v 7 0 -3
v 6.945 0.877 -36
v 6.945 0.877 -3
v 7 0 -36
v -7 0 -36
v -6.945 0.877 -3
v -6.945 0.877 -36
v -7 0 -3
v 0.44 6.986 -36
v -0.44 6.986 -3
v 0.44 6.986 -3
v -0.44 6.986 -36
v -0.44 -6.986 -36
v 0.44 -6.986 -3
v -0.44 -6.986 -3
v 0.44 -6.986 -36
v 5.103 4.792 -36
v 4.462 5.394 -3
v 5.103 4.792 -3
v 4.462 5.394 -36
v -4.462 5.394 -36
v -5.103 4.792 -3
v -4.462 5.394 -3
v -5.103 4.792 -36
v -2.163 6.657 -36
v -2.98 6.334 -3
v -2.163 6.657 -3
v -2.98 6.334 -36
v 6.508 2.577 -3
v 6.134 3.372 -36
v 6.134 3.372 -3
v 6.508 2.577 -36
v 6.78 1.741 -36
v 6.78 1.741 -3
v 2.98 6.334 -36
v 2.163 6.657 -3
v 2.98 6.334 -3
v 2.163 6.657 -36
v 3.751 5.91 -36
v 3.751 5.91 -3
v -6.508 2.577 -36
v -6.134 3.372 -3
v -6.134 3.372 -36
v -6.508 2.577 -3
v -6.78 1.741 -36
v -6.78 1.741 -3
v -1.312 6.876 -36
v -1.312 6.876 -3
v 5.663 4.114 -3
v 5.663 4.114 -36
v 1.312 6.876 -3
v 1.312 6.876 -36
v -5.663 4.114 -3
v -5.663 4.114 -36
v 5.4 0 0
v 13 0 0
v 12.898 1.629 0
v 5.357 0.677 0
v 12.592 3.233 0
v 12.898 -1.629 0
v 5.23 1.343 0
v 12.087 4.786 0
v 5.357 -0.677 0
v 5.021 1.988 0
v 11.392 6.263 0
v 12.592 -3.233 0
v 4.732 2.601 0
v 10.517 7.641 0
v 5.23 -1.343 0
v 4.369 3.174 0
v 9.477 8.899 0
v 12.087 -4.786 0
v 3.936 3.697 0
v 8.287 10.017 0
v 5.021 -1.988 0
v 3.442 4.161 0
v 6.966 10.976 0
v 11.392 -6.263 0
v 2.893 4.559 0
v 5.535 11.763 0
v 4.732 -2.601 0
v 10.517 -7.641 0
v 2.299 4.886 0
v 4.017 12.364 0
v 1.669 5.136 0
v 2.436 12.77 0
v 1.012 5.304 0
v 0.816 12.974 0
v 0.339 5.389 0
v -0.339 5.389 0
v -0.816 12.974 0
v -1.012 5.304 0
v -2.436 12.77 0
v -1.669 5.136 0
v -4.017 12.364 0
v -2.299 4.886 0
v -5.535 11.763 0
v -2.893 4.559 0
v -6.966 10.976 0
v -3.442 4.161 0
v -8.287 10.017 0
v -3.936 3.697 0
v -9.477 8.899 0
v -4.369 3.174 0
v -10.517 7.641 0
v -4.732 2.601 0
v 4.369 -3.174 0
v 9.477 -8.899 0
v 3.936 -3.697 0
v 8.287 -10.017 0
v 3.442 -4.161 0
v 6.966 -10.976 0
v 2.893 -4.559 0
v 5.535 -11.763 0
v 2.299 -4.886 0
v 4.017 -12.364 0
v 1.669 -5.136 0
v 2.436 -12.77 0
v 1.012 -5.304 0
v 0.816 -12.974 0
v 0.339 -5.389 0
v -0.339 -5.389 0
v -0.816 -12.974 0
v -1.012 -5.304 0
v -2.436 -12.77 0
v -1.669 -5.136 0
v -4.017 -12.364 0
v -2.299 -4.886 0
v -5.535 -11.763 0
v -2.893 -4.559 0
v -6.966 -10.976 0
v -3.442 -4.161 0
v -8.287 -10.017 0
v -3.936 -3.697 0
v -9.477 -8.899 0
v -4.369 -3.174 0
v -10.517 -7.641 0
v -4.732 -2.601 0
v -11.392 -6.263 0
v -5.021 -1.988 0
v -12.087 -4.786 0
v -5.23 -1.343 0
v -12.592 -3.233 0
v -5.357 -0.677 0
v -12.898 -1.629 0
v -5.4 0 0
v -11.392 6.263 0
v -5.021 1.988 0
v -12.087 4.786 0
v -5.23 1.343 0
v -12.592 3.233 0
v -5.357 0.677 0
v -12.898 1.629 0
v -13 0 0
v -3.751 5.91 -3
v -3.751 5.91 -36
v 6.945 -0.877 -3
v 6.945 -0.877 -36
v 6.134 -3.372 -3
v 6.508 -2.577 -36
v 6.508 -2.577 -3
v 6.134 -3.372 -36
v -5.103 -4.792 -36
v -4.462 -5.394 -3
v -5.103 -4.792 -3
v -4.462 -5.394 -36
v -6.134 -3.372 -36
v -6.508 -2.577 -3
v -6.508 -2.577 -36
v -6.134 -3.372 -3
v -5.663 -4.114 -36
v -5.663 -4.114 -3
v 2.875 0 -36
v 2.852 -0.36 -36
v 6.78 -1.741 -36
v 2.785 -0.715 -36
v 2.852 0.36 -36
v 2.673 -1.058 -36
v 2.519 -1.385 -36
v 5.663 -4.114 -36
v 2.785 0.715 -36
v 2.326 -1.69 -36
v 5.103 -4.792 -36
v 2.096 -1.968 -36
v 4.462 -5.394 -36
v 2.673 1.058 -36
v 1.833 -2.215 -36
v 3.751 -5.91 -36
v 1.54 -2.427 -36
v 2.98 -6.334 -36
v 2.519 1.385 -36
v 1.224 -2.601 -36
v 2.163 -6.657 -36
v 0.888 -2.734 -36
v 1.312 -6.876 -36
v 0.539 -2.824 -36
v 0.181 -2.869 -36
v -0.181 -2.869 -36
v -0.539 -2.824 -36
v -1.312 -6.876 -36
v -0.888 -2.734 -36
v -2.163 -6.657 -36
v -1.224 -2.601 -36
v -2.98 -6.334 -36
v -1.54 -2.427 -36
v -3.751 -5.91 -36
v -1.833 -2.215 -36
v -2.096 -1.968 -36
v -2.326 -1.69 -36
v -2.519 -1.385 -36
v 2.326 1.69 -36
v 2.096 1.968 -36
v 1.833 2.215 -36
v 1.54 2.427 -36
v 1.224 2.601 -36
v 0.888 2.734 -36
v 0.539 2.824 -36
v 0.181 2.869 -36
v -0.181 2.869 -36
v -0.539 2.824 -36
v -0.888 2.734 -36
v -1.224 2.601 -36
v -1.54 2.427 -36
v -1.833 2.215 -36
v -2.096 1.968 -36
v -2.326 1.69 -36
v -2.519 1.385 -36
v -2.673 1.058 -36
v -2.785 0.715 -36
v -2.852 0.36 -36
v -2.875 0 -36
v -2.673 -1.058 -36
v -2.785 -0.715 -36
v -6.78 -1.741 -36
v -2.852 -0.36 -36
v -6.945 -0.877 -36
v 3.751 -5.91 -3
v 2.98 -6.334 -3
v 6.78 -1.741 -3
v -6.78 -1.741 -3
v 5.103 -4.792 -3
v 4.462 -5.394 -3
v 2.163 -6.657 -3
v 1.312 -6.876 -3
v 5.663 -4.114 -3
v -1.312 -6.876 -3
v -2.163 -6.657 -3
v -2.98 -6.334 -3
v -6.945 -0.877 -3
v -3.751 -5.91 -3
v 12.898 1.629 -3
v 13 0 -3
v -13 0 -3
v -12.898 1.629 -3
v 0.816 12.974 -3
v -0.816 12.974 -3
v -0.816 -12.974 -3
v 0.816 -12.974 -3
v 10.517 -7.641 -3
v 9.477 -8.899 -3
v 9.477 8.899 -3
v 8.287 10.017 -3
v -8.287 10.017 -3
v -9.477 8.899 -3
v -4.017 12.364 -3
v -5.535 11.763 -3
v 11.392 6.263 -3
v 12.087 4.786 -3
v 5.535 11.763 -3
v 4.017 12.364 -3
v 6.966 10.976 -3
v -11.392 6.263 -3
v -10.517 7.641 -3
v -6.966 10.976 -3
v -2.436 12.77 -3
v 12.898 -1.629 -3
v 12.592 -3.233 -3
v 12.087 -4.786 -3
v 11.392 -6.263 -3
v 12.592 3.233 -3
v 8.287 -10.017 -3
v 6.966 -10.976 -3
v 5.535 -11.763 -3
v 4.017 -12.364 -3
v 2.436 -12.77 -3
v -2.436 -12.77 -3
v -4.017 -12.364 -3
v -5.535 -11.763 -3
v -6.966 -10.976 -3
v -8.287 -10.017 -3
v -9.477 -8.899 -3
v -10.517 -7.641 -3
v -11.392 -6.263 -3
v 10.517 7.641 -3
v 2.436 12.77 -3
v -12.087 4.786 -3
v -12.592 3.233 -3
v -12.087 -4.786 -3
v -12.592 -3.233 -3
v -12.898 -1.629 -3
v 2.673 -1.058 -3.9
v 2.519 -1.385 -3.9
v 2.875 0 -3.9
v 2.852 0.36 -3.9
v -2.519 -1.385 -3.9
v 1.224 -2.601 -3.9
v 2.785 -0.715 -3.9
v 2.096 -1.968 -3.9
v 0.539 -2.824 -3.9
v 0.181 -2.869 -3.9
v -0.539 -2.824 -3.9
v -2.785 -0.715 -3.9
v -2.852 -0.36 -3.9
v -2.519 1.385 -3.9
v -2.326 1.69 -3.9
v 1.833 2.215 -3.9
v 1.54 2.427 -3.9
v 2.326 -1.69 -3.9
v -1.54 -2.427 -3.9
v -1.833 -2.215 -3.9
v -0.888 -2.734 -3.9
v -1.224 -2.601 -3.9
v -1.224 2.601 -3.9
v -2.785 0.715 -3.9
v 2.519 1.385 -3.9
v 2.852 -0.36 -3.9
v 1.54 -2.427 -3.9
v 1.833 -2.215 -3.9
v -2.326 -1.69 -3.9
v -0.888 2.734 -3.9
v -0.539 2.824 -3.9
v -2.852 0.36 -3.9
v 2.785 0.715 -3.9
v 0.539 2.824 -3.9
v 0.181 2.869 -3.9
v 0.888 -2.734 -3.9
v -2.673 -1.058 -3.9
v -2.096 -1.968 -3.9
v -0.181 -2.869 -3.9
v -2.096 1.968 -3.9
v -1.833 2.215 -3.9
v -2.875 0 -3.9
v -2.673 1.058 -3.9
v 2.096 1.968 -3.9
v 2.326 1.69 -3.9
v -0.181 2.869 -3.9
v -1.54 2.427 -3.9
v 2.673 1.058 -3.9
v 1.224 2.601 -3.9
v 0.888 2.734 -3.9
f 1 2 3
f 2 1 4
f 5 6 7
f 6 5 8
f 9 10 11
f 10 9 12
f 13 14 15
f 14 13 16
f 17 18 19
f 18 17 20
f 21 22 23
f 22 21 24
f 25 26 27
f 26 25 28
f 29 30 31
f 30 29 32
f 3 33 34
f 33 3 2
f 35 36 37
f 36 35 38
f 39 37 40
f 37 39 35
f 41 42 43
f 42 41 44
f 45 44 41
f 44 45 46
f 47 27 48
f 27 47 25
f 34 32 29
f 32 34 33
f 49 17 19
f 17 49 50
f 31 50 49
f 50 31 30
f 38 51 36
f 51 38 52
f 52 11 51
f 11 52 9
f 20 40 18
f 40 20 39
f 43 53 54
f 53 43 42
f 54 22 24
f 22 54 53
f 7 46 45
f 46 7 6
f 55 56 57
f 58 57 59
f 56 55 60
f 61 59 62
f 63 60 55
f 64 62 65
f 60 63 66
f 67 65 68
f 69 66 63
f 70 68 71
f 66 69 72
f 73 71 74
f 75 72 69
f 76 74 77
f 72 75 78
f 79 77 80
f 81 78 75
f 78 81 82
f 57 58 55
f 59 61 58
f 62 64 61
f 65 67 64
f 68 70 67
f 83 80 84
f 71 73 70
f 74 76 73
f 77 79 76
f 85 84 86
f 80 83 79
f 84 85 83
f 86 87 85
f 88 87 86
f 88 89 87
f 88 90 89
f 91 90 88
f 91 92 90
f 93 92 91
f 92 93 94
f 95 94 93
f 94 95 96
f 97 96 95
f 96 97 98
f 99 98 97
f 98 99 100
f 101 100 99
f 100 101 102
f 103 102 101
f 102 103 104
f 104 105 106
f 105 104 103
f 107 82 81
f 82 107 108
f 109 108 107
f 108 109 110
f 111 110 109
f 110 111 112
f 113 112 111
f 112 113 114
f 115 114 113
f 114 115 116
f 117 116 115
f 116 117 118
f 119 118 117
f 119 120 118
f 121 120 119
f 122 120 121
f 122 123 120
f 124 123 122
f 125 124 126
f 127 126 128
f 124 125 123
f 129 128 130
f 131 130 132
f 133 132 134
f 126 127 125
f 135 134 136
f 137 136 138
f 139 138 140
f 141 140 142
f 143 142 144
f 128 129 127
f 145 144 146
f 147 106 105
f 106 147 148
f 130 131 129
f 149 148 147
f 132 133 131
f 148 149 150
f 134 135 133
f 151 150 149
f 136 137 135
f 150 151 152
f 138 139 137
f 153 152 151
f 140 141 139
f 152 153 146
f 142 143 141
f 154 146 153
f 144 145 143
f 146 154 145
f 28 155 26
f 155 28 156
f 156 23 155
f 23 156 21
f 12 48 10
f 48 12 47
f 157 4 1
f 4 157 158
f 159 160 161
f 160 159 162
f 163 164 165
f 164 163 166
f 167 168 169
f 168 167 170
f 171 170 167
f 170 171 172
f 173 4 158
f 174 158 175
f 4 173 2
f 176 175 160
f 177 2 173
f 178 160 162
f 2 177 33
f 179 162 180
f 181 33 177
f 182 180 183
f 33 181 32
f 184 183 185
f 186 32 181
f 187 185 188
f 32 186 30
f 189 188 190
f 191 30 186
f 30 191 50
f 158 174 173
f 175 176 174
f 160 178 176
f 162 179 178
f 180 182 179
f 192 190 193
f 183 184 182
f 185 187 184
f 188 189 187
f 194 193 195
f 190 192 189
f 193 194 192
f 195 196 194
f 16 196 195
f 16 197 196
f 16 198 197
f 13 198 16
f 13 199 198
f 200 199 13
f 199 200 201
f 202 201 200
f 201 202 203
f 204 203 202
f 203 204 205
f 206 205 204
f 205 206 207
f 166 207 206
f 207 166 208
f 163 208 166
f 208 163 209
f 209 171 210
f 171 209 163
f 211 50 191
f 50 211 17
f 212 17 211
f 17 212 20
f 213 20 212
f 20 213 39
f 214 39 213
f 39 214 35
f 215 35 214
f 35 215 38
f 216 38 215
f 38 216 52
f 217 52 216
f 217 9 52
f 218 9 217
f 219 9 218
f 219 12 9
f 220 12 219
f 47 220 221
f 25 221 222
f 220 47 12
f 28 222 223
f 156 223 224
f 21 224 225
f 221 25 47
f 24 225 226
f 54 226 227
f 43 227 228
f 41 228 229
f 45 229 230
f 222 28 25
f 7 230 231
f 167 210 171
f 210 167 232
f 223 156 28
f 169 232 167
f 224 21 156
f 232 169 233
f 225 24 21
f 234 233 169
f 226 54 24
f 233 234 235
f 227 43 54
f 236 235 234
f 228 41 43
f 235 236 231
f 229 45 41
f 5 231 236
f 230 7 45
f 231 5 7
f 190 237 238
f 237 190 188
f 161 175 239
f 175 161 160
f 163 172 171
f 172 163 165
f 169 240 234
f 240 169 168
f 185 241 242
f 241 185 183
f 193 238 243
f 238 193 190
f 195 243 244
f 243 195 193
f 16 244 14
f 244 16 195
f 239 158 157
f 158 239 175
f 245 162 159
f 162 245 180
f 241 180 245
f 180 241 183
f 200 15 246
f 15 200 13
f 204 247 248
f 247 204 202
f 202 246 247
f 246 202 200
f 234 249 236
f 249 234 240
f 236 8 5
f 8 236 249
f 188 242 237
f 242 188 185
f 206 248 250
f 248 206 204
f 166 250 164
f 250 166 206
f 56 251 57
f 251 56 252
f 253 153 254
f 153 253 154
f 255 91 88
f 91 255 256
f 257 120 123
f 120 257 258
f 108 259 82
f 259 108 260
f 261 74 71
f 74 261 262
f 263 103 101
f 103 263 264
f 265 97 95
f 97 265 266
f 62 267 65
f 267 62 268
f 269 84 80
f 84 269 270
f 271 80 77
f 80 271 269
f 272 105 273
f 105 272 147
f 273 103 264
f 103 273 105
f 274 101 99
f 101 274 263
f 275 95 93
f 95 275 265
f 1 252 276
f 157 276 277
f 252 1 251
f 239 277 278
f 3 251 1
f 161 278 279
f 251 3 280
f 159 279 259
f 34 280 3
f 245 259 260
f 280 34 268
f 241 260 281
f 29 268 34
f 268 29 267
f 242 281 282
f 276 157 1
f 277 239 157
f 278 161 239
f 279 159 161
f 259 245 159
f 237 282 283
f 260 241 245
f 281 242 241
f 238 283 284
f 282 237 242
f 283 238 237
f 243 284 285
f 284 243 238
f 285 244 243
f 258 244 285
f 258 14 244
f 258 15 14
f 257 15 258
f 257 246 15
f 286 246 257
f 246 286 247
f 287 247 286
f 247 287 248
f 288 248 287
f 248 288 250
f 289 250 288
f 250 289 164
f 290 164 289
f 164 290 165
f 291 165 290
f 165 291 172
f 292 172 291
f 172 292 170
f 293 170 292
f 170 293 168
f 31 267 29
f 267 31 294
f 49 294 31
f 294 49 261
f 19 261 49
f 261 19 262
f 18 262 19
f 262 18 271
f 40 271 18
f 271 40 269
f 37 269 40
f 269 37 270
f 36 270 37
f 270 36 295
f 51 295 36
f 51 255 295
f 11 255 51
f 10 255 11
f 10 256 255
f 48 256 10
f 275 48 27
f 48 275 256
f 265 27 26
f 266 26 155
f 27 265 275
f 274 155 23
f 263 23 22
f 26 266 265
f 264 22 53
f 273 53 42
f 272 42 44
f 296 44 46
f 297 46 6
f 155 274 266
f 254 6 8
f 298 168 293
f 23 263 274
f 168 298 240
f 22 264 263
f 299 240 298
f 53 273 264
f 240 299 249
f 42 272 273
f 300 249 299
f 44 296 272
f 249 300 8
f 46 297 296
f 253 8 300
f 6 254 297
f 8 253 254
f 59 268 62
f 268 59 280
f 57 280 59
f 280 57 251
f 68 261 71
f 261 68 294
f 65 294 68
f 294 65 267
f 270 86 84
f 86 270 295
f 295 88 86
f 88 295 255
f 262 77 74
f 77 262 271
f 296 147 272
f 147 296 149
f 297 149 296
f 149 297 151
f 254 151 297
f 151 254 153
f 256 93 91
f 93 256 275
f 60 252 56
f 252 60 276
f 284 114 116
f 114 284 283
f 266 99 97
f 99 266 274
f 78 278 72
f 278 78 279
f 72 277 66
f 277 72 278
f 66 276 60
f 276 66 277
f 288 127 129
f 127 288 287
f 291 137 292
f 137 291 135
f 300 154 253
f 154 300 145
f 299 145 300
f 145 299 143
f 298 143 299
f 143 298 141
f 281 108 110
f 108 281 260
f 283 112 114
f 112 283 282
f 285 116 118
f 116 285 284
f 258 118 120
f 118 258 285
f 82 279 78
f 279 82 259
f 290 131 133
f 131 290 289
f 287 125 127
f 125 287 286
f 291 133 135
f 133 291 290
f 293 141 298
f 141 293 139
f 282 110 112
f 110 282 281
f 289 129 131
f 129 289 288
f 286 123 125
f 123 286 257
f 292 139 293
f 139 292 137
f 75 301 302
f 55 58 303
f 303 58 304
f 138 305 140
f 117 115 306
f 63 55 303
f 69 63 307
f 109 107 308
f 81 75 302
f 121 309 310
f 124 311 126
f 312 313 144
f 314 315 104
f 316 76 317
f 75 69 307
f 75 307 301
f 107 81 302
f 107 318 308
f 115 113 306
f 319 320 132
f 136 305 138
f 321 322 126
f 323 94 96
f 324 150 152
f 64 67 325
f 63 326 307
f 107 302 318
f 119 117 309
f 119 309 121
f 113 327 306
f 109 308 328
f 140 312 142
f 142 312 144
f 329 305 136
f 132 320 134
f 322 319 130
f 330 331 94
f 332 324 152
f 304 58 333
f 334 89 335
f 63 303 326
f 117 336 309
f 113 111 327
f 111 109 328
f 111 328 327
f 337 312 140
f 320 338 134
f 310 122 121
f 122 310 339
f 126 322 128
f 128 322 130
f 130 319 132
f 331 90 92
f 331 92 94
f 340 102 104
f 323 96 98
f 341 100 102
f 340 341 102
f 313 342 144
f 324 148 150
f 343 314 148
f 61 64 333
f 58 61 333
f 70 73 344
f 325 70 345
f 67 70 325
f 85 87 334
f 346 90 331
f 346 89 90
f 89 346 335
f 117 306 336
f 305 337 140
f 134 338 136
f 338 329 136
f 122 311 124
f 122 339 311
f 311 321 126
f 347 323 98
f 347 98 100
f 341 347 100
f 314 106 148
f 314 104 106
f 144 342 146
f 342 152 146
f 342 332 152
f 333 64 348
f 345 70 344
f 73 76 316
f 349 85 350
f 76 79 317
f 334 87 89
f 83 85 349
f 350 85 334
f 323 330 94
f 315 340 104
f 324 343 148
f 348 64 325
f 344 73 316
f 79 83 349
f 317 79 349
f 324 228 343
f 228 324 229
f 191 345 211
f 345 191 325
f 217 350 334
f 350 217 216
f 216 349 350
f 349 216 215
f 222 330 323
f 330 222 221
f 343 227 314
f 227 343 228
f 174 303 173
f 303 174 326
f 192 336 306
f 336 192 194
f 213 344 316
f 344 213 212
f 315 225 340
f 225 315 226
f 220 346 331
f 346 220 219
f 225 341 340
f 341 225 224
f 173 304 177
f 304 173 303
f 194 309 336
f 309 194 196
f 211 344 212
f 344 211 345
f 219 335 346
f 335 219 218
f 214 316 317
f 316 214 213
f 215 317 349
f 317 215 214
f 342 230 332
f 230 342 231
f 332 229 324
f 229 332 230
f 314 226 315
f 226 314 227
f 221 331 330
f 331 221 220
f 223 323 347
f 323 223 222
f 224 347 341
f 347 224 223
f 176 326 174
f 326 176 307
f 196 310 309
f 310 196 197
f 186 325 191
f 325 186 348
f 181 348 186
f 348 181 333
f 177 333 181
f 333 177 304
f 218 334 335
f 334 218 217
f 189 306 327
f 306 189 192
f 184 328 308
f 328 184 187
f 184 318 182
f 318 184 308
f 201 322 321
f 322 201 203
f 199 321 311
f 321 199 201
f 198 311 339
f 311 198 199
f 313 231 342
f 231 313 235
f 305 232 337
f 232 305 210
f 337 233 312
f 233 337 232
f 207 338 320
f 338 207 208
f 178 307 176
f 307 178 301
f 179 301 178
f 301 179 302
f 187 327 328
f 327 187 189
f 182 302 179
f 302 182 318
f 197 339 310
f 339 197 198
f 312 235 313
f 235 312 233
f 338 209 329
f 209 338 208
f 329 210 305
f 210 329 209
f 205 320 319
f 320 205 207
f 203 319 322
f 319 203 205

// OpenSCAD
$fn = 50;


difference() {
	union() {
		translate(v = [0, 0, -36.0000000000]) {
			cylinder(h = 36, r = 7.0000000000);
		}
		translate(v = [0, 0, -3.0000000000]) {
			cylinder(h = 3, r = 13.0000000000);
		}
	}
	union() {
		translate(v = [0, 0, 0]) {
			rotate(a = [0, 0, 0]) {
				difference() {
					union() {
						#translate(v = [0, 0, -36.0000000000]) {
							cylinder(h = 36, r = 2.6000000000);
						}
						#translate(v = [0, 0, -3.9000000000]) {
							cylinder(h = 3.9000000000, r1 = 2.8750000000, r2 = 5.4000000000);
						}
						#translate(v = [0, 0, -36.0000000000]) {
							cylinder(h = 36, r = 2.8750000000);
						}
						#translate(v = [0, 0, -36.0000000000]) {
							cylinder(h = 36, r = 2.6000000000);
						}
					}
					union();
				}
			}
		}
	}
}
